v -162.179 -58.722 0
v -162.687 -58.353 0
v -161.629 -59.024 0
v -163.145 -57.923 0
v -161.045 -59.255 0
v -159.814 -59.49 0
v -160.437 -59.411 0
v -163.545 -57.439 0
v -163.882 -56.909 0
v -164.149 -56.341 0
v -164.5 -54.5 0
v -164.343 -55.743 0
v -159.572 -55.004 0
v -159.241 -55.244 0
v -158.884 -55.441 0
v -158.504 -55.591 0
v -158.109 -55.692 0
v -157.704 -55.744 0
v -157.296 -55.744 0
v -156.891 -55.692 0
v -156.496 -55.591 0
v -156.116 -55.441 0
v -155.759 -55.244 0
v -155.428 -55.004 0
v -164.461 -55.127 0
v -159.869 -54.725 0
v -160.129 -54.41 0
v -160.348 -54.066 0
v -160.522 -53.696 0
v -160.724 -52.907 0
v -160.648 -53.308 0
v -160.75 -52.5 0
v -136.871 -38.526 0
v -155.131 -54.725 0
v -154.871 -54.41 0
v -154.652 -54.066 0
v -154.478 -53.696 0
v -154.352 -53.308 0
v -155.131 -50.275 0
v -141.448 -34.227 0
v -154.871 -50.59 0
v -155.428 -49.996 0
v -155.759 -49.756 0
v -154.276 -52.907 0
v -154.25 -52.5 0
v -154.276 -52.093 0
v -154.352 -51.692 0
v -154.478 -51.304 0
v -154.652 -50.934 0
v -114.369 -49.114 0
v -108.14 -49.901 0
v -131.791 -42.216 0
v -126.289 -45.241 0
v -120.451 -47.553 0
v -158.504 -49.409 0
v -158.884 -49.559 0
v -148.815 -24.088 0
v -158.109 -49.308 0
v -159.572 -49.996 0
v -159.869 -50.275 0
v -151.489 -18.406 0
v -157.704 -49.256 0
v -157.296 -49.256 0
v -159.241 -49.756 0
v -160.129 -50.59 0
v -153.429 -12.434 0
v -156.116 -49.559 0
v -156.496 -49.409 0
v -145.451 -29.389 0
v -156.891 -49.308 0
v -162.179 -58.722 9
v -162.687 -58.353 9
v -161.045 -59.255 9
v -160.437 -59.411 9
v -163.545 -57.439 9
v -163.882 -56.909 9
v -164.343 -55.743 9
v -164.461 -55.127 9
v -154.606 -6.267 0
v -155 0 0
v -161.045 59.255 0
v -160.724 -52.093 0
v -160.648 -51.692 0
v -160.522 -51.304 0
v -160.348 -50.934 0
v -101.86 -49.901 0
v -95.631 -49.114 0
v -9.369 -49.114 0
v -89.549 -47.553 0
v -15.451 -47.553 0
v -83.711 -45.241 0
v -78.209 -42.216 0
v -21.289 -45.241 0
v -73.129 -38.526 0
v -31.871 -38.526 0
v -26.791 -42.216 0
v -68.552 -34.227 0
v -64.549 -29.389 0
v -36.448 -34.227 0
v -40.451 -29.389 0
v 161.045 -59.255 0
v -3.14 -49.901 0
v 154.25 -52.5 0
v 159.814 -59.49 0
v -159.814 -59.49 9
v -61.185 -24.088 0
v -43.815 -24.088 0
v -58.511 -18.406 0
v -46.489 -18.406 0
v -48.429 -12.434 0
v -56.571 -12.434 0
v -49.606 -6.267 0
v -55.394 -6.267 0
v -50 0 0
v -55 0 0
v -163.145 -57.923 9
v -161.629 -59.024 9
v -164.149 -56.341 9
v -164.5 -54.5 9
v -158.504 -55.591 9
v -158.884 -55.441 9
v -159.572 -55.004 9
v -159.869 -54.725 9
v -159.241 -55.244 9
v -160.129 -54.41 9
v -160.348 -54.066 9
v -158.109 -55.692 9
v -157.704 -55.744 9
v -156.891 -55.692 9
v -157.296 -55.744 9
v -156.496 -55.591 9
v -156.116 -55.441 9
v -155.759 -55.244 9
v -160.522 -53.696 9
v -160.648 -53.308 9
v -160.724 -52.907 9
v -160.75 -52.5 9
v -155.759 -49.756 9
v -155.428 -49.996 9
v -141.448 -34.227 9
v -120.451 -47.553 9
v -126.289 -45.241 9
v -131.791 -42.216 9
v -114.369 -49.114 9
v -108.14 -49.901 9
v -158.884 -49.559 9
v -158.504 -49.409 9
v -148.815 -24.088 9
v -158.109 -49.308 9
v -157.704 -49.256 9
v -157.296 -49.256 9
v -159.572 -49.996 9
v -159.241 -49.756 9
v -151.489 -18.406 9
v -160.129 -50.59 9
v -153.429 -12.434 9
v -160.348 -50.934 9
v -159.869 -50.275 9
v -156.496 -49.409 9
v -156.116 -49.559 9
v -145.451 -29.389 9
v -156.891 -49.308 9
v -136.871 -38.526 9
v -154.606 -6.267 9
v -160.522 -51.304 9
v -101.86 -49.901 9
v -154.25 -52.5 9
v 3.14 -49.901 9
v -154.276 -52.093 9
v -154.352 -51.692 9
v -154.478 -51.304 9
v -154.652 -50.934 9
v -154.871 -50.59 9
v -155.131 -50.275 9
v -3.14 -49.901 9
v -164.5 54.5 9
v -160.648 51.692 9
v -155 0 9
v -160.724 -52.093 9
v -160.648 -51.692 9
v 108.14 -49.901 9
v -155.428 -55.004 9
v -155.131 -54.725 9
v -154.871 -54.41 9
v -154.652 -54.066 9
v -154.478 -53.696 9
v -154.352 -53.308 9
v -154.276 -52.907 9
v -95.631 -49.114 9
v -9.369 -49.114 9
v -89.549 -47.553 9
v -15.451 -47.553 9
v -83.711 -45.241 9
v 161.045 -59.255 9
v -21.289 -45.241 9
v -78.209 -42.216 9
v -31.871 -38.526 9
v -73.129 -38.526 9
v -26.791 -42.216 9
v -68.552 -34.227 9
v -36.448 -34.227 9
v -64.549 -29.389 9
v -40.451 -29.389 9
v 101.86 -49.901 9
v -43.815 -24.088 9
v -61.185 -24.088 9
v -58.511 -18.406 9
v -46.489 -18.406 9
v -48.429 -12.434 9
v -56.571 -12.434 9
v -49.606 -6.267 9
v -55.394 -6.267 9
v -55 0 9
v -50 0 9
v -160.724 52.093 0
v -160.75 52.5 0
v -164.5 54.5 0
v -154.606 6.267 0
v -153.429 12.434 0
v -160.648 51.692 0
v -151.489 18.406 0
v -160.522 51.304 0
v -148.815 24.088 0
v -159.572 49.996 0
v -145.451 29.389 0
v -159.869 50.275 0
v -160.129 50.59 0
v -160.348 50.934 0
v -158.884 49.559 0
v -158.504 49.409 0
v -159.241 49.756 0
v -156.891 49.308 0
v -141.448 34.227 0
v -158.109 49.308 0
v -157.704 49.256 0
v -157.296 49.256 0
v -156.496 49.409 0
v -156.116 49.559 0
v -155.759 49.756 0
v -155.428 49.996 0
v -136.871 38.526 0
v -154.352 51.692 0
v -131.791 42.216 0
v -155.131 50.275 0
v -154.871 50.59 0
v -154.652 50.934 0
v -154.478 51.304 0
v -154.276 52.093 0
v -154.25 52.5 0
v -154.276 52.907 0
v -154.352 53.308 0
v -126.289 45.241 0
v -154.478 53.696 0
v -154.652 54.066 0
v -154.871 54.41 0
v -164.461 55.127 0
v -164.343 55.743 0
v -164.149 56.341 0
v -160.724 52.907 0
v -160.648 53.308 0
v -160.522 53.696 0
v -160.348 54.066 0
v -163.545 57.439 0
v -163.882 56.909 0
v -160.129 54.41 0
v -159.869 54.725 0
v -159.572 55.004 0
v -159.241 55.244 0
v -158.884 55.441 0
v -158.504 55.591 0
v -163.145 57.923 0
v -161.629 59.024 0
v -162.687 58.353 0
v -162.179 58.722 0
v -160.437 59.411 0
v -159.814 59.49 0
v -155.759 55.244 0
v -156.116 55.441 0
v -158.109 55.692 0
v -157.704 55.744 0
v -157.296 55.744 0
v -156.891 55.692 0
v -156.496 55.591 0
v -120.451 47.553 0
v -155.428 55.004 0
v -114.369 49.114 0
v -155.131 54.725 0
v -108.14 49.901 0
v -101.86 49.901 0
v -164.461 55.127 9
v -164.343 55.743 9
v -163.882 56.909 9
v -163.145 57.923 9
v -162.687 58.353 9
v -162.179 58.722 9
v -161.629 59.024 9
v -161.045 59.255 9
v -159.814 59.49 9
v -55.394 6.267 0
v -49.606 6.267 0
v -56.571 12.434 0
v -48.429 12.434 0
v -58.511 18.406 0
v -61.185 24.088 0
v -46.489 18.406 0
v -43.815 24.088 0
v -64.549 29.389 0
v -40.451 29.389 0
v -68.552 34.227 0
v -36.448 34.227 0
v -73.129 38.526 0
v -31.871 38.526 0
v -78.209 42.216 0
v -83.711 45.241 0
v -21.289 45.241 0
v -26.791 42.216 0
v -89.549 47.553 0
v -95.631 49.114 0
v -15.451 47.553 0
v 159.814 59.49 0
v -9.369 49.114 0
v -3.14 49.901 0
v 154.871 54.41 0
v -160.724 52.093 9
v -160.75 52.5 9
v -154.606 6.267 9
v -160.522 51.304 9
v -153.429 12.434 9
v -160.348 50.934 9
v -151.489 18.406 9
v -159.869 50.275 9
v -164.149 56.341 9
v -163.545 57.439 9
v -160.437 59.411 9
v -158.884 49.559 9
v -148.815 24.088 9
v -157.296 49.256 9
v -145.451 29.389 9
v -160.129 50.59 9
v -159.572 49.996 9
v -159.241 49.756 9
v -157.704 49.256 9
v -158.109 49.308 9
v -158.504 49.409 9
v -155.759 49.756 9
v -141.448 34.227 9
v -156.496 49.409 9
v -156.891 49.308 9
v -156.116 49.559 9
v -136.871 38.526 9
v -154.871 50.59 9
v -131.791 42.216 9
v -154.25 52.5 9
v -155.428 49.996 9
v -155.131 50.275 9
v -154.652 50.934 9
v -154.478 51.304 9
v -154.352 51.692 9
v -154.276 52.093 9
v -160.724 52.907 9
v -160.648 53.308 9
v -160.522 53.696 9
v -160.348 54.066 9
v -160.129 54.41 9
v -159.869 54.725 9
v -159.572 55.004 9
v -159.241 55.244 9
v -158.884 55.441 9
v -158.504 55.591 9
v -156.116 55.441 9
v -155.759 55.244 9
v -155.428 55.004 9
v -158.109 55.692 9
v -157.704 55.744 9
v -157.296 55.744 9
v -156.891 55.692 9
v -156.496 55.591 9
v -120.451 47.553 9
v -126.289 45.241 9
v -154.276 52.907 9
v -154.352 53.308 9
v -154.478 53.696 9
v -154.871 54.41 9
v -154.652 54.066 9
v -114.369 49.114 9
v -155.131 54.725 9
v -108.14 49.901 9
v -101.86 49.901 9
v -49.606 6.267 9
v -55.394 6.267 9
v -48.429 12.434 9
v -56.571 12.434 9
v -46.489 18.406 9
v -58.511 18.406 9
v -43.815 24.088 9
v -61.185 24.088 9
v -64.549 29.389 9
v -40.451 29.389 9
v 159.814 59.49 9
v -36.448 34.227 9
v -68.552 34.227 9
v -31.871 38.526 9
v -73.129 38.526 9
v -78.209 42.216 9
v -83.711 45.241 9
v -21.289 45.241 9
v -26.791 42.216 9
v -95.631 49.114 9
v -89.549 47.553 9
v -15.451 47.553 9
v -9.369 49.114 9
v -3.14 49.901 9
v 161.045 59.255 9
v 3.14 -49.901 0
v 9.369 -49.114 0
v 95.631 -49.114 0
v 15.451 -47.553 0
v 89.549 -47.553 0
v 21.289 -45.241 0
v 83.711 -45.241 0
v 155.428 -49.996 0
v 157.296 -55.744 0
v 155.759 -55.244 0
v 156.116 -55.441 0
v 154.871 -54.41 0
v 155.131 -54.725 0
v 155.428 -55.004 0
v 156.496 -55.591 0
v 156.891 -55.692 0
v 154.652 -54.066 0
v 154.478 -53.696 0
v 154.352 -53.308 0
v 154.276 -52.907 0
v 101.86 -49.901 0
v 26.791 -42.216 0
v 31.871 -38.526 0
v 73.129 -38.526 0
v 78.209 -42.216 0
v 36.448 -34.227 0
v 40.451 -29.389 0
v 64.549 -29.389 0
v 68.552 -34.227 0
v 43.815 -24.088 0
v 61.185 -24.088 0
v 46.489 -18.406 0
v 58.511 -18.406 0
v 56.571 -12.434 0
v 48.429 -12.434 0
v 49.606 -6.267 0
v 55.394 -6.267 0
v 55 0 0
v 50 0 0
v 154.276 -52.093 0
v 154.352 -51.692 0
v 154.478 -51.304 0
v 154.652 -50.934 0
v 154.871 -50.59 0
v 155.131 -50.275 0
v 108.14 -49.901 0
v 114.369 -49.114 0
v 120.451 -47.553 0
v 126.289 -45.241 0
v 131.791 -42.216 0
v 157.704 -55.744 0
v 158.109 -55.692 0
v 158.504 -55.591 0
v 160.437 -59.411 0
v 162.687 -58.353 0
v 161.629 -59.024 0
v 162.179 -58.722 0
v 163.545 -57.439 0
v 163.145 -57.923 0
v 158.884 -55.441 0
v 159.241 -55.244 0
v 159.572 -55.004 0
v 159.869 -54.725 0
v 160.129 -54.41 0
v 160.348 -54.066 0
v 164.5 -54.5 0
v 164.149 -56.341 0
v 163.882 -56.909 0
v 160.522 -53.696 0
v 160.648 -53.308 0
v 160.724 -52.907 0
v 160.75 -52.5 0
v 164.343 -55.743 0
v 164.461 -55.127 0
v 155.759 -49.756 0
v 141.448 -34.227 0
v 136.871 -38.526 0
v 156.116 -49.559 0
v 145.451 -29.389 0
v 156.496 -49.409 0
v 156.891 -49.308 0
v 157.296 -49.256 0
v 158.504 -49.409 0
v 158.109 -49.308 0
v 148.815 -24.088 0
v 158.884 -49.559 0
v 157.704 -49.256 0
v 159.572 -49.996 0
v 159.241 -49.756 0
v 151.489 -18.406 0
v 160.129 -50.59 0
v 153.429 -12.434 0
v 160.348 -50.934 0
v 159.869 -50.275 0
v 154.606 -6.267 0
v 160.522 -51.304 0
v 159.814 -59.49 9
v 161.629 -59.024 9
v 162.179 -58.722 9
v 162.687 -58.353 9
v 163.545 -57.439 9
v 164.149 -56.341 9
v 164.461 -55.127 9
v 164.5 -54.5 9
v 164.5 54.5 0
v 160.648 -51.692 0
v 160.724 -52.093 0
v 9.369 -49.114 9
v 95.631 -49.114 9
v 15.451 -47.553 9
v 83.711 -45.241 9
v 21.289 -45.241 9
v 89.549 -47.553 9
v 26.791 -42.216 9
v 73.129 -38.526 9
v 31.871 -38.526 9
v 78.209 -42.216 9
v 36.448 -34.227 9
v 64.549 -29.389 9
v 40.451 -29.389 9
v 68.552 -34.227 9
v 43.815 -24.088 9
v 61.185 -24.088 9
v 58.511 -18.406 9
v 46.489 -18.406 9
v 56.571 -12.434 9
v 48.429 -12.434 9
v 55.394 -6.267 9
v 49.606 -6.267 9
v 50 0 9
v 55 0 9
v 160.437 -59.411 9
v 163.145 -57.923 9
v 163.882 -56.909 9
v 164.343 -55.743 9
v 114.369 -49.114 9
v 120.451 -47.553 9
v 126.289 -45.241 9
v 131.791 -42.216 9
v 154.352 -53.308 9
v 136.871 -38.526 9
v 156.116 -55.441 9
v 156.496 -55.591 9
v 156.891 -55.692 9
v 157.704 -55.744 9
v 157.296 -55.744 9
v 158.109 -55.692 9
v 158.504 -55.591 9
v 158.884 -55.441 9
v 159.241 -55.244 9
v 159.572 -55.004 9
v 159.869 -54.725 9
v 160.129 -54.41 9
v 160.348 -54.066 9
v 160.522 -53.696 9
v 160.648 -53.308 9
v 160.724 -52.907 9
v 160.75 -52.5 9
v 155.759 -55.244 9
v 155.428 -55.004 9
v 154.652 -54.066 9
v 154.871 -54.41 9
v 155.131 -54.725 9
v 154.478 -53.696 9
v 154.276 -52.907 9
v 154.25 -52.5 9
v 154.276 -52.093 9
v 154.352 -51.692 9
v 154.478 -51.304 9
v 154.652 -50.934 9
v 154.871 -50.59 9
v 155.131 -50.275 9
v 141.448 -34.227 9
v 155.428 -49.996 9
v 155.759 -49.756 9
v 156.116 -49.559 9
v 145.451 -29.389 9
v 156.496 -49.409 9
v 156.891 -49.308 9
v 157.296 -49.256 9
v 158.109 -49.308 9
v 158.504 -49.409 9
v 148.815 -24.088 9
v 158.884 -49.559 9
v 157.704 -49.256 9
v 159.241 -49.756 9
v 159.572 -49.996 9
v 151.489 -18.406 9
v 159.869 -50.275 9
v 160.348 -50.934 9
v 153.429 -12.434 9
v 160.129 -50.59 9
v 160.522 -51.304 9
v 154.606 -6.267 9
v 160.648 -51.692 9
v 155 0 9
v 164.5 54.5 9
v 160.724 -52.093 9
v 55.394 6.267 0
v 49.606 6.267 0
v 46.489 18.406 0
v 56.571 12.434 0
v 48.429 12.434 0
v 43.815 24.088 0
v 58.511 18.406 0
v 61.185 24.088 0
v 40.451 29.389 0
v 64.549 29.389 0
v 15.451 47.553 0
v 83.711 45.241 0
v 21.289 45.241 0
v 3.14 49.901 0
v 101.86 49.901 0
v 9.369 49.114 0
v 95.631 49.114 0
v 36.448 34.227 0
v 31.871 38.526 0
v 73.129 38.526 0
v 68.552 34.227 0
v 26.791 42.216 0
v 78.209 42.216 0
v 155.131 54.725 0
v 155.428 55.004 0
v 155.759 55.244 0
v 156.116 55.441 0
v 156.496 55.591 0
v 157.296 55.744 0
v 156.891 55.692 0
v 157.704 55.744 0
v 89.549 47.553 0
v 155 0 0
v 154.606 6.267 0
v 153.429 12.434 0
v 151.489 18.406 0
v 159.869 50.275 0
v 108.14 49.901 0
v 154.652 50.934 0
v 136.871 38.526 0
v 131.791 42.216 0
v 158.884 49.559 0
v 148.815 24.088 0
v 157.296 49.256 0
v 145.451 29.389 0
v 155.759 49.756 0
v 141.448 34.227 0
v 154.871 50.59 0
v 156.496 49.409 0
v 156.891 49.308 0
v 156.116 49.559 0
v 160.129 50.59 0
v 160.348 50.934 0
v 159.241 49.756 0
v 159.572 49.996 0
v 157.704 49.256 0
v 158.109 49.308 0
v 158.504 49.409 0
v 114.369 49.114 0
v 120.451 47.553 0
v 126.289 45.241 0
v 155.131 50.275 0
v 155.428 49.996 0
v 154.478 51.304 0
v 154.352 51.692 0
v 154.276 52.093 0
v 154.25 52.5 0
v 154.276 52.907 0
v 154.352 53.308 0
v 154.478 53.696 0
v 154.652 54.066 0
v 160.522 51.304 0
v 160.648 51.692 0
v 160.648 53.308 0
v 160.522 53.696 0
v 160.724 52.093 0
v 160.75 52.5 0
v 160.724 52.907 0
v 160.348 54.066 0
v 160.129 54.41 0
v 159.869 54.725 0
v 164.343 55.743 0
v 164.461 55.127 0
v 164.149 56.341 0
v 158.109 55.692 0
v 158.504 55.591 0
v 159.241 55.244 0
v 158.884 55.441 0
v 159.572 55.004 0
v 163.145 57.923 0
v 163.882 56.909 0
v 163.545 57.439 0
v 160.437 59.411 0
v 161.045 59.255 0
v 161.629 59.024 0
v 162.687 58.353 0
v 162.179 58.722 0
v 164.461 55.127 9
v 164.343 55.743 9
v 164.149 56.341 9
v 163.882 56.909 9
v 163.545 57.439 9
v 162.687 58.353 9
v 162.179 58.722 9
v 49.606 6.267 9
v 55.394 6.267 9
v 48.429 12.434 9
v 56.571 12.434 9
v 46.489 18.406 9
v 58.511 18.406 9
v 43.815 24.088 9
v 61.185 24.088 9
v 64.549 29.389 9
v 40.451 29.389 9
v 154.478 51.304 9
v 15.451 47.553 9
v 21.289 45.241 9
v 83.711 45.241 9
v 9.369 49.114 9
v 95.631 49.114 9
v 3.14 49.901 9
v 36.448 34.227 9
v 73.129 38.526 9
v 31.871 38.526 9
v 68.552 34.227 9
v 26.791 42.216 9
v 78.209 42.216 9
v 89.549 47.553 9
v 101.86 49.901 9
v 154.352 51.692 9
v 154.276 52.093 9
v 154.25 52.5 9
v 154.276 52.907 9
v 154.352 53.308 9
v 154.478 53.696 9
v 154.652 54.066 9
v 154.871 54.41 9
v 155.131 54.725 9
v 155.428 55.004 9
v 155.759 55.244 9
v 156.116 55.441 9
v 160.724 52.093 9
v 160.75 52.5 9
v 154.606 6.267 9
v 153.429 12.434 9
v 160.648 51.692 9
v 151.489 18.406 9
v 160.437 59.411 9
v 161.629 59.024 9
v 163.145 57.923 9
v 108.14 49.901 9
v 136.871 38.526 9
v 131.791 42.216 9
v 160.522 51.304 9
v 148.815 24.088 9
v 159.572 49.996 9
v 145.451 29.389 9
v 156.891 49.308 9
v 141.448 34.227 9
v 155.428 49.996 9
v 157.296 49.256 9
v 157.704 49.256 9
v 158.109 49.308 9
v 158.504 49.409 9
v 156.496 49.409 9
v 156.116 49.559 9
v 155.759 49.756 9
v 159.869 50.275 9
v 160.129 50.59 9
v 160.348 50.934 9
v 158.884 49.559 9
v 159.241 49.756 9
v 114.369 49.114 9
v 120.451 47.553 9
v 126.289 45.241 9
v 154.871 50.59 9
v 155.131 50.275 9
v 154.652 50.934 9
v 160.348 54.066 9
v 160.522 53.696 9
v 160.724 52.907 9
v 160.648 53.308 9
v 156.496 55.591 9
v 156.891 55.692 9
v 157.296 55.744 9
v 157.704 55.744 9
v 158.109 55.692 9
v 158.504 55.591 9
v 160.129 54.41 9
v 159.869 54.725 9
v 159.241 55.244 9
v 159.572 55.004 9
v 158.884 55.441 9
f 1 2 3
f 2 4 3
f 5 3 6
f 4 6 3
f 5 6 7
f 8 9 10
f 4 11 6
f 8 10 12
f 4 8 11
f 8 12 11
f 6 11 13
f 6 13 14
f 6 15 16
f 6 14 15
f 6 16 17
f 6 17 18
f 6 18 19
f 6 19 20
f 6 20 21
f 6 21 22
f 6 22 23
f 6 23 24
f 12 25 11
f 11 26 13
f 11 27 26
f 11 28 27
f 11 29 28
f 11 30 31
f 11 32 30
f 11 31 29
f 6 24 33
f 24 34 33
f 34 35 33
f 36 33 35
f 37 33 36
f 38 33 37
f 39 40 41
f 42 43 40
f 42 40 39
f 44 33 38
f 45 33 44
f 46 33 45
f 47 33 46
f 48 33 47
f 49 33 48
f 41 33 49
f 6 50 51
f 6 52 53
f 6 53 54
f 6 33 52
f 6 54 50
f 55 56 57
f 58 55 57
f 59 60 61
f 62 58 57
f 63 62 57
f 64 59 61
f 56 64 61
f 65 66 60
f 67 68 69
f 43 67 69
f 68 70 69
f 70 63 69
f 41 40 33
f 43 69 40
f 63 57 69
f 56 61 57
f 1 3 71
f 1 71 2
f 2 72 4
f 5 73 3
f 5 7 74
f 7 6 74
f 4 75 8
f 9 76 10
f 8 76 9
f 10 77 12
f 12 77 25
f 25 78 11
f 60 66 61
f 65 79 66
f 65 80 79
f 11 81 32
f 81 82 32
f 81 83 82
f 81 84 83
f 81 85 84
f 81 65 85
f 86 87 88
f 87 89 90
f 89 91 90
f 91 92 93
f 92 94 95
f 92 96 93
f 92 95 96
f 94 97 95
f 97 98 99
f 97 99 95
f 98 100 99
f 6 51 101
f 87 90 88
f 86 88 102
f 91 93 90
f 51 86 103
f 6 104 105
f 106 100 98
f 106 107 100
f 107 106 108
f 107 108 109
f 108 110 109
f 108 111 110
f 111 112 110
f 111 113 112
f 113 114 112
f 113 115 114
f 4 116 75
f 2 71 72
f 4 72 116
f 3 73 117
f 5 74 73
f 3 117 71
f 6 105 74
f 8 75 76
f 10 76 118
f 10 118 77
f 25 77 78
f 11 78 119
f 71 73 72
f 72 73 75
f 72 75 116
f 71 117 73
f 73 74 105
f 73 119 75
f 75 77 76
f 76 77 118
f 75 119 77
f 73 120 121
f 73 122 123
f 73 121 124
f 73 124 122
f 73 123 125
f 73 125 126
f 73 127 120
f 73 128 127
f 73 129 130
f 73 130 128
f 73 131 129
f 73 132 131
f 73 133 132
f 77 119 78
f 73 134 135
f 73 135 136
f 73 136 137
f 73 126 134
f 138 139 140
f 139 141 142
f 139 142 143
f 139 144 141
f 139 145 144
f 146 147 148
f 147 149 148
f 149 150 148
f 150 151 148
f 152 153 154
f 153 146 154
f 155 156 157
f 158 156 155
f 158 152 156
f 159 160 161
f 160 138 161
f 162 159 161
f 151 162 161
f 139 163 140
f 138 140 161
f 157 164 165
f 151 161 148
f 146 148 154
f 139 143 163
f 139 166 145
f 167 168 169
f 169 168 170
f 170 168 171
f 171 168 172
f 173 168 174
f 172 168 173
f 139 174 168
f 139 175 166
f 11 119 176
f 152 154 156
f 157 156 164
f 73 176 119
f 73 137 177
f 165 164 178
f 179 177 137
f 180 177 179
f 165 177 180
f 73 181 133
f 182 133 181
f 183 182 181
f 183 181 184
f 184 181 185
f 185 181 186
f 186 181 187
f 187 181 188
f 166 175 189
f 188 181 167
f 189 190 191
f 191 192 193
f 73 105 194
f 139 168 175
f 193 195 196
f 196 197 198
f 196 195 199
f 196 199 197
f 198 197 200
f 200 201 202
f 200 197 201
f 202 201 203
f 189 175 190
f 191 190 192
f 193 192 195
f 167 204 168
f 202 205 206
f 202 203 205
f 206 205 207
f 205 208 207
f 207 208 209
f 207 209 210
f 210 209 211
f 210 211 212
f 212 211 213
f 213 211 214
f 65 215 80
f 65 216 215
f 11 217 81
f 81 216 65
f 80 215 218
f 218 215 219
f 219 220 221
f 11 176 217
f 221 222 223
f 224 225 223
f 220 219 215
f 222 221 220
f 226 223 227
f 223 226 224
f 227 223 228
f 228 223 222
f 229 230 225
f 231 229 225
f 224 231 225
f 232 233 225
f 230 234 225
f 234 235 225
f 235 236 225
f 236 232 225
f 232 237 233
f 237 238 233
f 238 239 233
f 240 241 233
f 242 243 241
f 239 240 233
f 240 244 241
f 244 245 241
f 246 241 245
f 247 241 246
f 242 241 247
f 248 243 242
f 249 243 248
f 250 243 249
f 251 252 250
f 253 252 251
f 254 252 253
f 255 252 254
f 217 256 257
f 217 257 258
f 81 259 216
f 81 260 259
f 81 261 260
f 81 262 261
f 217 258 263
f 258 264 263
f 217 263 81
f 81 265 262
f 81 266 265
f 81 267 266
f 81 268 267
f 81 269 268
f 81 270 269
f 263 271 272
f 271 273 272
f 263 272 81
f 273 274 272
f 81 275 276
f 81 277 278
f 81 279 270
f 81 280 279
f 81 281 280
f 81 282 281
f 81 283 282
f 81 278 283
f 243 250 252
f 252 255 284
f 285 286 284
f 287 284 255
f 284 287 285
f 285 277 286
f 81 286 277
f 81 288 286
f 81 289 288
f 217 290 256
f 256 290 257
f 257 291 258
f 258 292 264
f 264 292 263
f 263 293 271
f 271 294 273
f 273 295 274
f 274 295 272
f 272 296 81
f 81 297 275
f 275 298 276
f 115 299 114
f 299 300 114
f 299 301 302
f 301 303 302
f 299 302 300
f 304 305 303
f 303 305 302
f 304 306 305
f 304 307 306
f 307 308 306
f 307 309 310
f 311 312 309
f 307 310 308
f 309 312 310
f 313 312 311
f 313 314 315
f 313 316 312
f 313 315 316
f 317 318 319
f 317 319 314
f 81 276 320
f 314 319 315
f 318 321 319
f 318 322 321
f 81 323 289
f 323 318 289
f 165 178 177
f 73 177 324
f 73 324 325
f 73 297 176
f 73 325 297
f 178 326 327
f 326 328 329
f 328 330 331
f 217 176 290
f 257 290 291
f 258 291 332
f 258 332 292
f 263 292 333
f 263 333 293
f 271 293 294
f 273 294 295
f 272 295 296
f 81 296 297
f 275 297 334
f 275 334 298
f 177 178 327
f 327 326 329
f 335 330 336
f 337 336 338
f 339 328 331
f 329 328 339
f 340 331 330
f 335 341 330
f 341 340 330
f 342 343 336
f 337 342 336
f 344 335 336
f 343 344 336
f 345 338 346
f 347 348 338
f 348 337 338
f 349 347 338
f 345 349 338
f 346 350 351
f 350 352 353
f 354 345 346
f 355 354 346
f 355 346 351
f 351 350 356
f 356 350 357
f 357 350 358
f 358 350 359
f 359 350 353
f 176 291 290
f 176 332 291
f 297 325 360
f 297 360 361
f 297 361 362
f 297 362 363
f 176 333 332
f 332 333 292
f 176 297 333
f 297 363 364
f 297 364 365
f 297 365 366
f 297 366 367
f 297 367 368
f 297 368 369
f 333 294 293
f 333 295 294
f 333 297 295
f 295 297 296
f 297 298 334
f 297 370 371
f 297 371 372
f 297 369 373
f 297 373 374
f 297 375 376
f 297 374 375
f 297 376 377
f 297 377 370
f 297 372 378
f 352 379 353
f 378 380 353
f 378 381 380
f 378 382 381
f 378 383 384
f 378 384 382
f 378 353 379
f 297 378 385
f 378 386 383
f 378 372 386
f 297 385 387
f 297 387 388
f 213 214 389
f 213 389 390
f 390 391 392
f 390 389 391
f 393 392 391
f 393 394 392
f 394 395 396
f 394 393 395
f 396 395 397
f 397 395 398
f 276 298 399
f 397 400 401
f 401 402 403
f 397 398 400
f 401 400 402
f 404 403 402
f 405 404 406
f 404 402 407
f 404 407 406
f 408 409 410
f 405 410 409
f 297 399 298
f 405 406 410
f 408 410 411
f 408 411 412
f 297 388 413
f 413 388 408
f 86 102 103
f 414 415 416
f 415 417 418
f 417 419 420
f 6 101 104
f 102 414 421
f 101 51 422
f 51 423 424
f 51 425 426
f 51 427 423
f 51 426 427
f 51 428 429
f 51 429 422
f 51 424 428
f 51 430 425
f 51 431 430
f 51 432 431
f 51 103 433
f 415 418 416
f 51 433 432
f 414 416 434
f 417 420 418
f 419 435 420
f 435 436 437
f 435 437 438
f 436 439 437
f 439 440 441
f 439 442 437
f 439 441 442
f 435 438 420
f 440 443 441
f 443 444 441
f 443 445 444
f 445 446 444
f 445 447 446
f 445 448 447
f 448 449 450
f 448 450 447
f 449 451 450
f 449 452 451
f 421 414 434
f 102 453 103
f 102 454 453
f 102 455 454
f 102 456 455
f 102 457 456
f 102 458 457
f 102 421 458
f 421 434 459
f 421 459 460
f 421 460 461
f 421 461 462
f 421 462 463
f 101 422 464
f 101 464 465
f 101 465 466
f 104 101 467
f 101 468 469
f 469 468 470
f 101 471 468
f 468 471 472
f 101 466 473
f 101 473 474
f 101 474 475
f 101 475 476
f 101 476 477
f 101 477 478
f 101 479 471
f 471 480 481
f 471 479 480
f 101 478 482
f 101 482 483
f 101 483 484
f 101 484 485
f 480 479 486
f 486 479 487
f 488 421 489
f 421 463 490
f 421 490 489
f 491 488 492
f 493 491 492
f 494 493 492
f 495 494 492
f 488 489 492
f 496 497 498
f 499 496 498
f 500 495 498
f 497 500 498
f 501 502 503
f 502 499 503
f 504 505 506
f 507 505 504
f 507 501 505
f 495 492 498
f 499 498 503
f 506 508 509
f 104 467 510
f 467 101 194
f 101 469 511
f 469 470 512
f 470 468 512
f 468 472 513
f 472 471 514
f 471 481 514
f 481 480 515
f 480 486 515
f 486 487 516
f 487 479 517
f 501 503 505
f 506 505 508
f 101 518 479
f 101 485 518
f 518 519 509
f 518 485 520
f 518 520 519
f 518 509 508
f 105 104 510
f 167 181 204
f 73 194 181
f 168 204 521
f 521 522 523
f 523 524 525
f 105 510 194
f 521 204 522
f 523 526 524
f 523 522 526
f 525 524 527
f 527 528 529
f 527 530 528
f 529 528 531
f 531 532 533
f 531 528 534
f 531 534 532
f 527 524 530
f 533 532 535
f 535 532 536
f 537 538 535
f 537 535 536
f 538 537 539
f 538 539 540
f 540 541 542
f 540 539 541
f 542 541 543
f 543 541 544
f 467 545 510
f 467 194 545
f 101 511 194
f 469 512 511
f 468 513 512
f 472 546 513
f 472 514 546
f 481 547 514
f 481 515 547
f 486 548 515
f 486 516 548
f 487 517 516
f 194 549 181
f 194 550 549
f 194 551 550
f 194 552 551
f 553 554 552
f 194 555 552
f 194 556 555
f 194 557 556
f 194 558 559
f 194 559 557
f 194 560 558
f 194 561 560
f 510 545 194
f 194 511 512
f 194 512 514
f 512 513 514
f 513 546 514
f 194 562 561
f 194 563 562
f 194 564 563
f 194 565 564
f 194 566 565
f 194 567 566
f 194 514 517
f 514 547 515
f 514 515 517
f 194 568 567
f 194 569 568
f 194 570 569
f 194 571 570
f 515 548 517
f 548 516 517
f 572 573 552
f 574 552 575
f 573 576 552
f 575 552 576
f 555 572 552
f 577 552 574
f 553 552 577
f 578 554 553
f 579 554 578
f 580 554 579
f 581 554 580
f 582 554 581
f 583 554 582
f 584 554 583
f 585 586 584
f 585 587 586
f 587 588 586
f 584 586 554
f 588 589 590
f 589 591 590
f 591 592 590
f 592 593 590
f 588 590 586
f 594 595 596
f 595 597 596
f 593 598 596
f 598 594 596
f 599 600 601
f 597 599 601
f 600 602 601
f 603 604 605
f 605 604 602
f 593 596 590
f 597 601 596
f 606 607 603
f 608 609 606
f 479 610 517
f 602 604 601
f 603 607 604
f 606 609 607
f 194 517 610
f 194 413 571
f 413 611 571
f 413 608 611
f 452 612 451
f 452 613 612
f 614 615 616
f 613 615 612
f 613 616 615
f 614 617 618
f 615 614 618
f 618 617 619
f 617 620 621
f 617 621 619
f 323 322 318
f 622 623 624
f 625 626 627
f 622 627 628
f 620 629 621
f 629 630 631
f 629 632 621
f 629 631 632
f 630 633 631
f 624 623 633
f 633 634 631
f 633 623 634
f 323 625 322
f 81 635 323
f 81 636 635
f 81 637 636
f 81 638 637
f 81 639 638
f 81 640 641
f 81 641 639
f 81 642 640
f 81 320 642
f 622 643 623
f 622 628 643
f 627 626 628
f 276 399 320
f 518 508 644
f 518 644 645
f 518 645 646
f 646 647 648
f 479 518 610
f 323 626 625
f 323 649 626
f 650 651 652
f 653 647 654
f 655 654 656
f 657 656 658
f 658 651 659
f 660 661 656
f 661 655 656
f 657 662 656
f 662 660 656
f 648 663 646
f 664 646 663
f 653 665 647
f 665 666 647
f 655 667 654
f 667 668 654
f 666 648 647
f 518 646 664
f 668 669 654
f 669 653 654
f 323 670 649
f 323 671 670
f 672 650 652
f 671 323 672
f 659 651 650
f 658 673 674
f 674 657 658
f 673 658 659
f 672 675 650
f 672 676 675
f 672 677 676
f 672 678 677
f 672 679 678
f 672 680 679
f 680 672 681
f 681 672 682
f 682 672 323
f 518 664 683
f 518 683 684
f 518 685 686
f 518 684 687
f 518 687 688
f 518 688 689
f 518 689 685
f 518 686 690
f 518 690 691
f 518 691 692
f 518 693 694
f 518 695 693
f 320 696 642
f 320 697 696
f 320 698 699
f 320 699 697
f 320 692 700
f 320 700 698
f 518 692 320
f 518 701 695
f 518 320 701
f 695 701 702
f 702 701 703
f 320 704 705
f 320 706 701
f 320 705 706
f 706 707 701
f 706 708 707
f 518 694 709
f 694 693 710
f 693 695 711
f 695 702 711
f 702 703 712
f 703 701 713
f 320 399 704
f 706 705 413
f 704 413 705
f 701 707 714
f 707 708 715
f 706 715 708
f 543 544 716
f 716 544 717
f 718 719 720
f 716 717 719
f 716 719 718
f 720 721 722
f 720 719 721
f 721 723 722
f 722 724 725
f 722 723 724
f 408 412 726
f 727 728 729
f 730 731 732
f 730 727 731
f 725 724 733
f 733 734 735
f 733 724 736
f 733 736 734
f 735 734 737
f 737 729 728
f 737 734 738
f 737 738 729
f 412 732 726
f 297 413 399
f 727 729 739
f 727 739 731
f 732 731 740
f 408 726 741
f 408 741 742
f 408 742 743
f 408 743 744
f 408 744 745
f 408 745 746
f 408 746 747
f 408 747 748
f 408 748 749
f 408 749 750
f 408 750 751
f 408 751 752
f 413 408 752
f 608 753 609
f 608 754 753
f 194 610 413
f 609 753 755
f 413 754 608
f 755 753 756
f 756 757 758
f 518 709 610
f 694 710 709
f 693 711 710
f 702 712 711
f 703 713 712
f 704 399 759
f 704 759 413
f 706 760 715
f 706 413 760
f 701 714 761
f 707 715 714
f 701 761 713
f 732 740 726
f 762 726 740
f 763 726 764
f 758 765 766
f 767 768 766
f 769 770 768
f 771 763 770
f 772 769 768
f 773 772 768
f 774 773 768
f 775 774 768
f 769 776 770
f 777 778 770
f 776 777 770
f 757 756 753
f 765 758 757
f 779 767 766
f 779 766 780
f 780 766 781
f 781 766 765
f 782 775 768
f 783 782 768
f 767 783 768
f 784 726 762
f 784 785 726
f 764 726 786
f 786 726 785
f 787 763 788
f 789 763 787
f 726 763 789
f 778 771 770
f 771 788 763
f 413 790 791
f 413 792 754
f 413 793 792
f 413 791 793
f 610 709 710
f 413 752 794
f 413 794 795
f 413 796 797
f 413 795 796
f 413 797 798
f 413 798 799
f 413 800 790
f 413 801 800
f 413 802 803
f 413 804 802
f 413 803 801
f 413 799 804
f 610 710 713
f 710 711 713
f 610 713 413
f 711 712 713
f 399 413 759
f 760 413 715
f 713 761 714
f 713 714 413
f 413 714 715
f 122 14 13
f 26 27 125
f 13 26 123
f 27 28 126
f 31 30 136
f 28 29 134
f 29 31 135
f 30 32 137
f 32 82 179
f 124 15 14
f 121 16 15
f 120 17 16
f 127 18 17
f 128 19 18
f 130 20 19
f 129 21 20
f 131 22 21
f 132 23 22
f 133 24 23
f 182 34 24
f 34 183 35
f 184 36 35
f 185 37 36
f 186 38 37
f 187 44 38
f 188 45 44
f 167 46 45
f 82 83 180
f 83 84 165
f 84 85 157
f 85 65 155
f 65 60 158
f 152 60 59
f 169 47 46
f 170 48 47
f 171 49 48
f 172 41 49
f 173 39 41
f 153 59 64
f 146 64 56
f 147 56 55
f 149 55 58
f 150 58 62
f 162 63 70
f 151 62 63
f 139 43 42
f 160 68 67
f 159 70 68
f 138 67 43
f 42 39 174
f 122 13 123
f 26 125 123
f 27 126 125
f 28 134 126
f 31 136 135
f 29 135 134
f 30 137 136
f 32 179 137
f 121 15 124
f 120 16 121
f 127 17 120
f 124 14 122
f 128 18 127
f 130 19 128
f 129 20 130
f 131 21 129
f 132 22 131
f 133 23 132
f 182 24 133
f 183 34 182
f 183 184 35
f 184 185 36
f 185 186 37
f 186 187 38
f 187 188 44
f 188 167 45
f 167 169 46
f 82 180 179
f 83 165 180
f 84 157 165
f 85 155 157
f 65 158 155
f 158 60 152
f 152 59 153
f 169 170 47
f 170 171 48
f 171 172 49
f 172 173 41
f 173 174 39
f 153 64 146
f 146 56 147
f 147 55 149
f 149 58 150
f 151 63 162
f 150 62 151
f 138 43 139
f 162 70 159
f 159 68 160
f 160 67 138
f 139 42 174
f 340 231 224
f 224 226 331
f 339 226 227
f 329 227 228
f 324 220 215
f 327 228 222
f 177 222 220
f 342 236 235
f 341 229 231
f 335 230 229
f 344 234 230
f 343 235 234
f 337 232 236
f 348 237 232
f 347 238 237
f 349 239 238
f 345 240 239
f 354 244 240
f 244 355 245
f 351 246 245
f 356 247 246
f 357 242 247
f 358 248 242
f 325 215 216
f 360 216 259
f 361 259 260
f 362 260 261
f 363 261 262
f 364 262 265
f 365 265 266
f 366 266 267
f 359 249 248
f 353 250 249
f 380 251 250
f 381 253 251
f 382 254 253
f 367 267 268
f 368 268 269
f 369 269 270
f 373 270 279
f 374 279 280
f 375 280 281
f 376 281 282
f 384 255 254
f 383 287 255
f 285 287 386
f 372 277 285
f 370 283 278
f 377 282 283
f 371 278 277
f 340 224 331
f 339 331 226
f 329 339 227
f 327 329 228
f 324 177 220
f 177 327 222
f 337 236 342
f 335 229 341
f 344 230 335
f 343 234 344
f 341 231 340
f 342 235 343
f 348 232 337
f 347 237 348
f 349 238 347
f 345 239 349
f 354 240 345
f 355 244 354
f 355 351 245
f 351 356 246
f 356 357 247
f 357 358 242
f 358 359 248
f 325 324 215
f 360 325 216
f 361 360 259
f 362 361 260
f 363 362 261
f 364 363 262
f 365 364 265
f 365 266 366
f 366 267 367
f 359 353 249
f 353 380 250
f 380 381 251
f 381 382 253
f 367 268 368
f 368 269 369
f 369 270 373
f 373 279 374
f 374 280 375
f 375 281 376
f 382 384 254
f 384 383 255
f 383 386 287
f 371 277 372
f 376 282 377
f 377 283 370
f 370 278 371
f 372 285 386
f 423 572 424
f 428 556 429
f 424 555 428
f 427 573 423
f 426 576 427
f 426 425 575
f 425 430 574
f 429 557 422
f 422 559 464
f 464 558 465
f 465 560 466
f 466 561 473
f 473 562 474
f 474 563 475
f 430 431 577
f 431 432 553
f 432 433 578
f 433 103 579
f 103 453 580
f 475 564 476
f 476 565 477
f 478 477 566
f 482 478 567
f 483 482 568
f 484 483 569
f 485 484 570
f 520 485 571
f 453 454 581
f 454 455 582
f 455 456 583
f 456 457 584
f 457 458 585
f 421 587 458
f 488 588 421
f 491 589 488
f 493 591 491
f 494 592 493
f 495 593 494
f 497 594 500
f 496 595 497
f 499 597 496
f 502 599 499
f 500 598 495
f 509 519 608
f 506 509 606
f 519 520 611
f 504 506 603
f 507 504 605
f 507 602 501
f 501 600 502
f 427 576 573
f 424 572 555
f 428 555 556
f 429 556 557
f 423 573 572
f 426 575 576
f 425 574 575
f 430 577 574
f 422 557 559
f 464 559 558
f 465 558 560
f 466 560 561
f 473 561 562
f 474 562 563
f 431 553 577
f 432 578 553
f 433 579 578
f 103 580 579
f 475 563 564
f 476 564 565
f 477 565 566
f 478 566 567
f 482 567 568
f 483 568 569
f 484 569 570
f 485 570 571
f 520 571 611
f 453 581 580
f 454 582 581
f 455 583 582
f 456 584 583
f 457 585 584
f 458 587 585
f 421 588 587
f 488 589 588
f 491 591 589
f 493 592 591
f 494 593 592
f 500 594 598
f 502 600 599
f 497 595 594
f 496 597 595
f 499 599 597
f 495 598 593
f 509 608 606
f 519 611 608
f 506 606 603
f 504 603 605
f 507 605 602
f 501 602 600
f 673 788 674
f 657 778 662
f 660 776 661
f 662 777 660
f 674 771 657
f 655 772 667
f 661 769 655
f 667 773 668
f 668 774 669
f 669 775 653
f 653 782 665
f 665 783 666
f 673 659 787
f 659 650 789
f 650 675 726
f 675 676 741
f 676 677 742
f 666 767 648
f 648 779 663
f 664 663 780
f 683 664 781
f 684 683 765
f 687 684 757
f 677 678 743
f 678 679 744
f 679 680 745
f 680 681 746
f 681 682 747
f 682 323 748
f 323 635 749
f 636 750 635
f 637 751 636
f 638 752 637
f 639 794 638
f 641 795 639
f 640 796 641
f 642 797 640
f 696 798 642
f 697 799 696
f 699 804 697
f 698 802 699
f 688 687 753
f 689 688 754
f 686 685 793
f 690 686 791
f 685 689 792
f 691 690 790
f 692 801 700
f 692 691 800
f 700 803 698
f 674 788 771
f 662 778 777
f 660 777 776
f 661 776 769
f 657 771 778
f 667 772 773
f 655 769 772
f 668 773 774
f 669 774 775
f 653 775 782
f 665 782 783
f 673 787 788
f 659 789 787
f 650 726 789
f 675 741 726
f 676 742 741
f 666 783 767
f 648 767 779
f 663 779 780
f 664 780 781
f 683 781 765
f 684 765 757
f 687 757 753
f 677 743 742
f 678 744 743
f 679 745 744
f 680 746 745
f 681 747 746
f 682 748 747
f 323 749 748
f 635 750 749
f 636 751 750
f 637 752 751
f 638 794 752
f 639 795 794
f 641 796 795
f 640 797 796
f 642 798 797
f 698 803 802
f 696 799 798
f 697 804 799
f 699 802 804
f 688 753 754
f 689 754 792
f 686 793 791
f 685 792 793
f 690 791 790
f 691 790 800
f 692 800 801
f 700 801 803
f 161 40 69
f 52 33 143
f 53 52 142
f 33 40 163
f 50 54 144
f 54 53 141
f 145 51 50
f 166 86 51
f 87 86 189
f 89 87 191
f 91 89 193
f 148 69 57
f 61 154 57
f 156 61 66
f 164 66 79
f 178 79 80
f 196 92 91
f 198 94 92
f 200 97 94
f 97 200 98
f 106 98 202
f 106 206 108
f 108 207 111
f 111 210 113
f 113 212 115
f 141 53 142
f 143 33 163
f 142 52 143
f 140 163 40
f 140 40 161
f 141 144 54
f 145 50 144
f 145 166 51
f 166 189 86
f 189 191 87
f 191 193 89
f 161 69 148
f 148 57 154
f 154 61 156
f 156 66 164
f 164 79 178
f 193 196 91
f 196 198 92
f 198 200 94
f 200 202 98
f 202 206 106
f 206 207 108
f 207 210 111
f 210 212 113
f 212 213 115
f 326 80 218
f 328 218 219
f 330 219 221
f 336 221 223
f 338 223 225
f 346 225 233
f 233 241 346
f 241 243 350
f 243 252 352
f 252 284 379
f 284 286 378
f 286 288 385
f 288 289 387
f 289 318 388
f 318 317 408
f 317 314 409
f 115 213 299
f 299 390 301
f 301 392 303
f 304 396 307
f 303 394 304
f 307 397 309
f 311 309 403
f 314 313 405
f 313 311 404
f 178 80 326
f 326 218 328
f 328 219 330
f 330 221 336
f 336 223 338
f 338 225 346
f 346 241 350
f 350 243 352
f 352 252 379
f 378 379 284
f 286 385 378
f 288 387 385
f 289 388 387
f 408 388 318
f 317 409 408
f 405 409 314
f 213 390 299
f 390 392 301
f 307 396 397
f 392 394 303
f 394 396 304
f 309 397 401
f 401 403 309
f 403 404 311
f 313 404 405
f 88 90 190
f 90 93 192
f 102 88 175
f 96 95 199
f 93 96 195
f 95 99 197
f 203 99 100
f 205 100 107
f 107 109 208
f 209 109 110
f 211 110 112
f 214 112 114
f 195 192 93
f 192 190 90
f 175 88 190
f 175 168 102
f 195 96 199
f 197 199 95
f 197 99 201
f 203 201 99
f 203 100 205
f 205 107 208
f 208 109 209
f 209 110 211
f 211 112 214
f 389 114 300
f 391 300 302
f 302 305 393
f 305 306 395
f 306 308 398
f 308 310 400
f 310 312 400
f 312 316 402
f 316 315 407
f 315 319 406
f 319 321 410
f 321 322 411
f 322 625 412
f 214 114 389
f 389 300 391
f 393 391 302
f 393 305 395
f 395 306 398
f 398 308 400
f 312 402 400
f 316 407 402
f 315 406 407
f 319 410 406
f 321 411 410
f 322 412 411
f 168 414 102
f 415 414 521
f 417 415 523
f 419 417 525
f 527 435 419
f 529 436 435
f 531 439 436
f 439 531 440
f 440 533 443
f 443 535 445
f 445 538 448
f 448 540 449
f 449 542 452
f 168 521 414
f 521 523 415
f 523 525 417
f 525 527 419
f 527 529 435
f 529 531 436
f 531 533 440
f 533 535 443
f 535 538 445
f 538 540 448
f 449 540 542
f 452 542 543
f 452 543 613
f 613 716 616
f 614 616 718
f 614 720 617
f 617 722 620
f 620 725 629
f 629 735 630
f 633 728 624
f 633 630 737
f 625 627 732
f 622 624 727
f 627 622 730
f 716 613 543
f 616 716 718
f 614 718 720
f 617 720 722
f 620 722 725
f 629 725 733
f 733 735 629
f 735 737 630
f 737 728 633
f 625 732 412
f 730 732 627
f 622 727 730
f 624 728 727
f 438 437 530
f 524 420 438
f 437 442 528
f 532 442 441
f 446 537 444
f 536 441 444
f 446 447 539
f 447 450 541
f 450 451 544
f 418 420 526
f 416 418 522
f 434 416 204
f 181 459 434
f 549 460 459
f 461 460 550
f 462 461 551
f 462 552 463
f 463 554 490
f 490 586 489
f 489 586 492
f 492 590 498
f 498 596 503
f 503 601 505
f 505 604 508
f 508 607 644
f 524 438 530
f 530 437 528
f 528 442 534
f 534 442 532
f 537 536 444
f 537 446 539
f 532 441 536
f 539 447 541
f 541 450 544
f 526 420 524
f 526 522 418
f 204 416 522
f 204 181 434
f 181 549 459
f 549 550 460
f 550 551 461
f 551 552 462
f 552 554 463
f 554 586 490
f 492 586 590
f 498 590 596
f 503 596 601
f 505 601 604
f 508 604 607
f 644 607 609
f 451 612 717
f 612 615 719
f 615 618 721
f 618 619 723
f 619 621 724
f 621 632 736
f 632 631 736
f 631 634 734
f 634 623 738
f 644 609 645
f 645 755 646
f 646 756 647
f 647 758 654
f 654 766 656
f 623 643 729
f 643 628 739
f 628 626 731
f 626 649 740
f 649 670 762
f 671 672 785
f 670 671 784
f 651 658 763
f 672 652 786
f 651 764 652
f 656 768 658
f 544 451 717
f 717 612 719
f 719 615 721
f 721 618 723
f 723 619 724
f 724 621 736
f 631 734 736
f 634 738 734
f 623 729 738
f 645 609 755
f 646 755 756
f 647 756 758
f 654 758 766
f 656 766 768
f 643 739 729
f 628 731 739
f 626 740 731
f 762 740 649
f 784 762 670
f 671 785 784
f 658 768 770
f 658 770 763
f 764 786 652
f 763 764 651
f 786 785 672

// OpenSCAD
$fn = 50;

difference() {
	union() {
		hull() {
			translate(v = [-159.5, 54.5, 0]) {
				cylinder(h = 9, r = 5);
			}
			translate(v = [159.5, 54.5, 0]) {
				cylinder(h = 9, r = 5);
			}
			translate(v = [-159.5, -54.5, 0]) {
				cylinder(h = 9, r = 5);
			}
			translate(v = [159.5, -54.5, 0]) {
				cylinder(h = 9, r = 5);
			}
		}
	}
	union() {
		translate(v = [-157.5, -52.5, -100.0]) {
			cylinder(h = 200, r = 3.25);
		}
		translate(v = [-157.5, 52.5, -100.0]) {
			cylinder(h = 200, r = 3.25);
		}
		translate(v = [157.5, -52.5, -100.0]) {
			cylinder(h = 200, r = 3.25);
		}
		translate(v = [157.5, 52.5, -100.0]) {
			cylinder(h = 200, r = 3.25);
		}
		translate(v = [-157.5, -52.5, -100.0]) {
			cylinder(h = 200, r = 1.8);
		}
		translate(v = [-157.5, 52.5, -100.0]) {
			cylinder(h = 200, r = 1.8);
		}
		translate(v = [157.5, -52.5, -100.0]) {
			cylinder(h = 200, r = 1.8);
		}
		translate(v = [157.5, 52.5, -100.0]) {
			cylinder(h = 200, r = 1.8);
		}
		translate(v = [-105.0, 0, 0.0]) {
			cylinder(h = 9, r = 50.0);
		}
		cylinder(h = 9, r = 50.0);
		translate(v = [105.0, 0, 0.0]) {
			cylinder(h = 9, r = 50.0);
		}
	}
}
